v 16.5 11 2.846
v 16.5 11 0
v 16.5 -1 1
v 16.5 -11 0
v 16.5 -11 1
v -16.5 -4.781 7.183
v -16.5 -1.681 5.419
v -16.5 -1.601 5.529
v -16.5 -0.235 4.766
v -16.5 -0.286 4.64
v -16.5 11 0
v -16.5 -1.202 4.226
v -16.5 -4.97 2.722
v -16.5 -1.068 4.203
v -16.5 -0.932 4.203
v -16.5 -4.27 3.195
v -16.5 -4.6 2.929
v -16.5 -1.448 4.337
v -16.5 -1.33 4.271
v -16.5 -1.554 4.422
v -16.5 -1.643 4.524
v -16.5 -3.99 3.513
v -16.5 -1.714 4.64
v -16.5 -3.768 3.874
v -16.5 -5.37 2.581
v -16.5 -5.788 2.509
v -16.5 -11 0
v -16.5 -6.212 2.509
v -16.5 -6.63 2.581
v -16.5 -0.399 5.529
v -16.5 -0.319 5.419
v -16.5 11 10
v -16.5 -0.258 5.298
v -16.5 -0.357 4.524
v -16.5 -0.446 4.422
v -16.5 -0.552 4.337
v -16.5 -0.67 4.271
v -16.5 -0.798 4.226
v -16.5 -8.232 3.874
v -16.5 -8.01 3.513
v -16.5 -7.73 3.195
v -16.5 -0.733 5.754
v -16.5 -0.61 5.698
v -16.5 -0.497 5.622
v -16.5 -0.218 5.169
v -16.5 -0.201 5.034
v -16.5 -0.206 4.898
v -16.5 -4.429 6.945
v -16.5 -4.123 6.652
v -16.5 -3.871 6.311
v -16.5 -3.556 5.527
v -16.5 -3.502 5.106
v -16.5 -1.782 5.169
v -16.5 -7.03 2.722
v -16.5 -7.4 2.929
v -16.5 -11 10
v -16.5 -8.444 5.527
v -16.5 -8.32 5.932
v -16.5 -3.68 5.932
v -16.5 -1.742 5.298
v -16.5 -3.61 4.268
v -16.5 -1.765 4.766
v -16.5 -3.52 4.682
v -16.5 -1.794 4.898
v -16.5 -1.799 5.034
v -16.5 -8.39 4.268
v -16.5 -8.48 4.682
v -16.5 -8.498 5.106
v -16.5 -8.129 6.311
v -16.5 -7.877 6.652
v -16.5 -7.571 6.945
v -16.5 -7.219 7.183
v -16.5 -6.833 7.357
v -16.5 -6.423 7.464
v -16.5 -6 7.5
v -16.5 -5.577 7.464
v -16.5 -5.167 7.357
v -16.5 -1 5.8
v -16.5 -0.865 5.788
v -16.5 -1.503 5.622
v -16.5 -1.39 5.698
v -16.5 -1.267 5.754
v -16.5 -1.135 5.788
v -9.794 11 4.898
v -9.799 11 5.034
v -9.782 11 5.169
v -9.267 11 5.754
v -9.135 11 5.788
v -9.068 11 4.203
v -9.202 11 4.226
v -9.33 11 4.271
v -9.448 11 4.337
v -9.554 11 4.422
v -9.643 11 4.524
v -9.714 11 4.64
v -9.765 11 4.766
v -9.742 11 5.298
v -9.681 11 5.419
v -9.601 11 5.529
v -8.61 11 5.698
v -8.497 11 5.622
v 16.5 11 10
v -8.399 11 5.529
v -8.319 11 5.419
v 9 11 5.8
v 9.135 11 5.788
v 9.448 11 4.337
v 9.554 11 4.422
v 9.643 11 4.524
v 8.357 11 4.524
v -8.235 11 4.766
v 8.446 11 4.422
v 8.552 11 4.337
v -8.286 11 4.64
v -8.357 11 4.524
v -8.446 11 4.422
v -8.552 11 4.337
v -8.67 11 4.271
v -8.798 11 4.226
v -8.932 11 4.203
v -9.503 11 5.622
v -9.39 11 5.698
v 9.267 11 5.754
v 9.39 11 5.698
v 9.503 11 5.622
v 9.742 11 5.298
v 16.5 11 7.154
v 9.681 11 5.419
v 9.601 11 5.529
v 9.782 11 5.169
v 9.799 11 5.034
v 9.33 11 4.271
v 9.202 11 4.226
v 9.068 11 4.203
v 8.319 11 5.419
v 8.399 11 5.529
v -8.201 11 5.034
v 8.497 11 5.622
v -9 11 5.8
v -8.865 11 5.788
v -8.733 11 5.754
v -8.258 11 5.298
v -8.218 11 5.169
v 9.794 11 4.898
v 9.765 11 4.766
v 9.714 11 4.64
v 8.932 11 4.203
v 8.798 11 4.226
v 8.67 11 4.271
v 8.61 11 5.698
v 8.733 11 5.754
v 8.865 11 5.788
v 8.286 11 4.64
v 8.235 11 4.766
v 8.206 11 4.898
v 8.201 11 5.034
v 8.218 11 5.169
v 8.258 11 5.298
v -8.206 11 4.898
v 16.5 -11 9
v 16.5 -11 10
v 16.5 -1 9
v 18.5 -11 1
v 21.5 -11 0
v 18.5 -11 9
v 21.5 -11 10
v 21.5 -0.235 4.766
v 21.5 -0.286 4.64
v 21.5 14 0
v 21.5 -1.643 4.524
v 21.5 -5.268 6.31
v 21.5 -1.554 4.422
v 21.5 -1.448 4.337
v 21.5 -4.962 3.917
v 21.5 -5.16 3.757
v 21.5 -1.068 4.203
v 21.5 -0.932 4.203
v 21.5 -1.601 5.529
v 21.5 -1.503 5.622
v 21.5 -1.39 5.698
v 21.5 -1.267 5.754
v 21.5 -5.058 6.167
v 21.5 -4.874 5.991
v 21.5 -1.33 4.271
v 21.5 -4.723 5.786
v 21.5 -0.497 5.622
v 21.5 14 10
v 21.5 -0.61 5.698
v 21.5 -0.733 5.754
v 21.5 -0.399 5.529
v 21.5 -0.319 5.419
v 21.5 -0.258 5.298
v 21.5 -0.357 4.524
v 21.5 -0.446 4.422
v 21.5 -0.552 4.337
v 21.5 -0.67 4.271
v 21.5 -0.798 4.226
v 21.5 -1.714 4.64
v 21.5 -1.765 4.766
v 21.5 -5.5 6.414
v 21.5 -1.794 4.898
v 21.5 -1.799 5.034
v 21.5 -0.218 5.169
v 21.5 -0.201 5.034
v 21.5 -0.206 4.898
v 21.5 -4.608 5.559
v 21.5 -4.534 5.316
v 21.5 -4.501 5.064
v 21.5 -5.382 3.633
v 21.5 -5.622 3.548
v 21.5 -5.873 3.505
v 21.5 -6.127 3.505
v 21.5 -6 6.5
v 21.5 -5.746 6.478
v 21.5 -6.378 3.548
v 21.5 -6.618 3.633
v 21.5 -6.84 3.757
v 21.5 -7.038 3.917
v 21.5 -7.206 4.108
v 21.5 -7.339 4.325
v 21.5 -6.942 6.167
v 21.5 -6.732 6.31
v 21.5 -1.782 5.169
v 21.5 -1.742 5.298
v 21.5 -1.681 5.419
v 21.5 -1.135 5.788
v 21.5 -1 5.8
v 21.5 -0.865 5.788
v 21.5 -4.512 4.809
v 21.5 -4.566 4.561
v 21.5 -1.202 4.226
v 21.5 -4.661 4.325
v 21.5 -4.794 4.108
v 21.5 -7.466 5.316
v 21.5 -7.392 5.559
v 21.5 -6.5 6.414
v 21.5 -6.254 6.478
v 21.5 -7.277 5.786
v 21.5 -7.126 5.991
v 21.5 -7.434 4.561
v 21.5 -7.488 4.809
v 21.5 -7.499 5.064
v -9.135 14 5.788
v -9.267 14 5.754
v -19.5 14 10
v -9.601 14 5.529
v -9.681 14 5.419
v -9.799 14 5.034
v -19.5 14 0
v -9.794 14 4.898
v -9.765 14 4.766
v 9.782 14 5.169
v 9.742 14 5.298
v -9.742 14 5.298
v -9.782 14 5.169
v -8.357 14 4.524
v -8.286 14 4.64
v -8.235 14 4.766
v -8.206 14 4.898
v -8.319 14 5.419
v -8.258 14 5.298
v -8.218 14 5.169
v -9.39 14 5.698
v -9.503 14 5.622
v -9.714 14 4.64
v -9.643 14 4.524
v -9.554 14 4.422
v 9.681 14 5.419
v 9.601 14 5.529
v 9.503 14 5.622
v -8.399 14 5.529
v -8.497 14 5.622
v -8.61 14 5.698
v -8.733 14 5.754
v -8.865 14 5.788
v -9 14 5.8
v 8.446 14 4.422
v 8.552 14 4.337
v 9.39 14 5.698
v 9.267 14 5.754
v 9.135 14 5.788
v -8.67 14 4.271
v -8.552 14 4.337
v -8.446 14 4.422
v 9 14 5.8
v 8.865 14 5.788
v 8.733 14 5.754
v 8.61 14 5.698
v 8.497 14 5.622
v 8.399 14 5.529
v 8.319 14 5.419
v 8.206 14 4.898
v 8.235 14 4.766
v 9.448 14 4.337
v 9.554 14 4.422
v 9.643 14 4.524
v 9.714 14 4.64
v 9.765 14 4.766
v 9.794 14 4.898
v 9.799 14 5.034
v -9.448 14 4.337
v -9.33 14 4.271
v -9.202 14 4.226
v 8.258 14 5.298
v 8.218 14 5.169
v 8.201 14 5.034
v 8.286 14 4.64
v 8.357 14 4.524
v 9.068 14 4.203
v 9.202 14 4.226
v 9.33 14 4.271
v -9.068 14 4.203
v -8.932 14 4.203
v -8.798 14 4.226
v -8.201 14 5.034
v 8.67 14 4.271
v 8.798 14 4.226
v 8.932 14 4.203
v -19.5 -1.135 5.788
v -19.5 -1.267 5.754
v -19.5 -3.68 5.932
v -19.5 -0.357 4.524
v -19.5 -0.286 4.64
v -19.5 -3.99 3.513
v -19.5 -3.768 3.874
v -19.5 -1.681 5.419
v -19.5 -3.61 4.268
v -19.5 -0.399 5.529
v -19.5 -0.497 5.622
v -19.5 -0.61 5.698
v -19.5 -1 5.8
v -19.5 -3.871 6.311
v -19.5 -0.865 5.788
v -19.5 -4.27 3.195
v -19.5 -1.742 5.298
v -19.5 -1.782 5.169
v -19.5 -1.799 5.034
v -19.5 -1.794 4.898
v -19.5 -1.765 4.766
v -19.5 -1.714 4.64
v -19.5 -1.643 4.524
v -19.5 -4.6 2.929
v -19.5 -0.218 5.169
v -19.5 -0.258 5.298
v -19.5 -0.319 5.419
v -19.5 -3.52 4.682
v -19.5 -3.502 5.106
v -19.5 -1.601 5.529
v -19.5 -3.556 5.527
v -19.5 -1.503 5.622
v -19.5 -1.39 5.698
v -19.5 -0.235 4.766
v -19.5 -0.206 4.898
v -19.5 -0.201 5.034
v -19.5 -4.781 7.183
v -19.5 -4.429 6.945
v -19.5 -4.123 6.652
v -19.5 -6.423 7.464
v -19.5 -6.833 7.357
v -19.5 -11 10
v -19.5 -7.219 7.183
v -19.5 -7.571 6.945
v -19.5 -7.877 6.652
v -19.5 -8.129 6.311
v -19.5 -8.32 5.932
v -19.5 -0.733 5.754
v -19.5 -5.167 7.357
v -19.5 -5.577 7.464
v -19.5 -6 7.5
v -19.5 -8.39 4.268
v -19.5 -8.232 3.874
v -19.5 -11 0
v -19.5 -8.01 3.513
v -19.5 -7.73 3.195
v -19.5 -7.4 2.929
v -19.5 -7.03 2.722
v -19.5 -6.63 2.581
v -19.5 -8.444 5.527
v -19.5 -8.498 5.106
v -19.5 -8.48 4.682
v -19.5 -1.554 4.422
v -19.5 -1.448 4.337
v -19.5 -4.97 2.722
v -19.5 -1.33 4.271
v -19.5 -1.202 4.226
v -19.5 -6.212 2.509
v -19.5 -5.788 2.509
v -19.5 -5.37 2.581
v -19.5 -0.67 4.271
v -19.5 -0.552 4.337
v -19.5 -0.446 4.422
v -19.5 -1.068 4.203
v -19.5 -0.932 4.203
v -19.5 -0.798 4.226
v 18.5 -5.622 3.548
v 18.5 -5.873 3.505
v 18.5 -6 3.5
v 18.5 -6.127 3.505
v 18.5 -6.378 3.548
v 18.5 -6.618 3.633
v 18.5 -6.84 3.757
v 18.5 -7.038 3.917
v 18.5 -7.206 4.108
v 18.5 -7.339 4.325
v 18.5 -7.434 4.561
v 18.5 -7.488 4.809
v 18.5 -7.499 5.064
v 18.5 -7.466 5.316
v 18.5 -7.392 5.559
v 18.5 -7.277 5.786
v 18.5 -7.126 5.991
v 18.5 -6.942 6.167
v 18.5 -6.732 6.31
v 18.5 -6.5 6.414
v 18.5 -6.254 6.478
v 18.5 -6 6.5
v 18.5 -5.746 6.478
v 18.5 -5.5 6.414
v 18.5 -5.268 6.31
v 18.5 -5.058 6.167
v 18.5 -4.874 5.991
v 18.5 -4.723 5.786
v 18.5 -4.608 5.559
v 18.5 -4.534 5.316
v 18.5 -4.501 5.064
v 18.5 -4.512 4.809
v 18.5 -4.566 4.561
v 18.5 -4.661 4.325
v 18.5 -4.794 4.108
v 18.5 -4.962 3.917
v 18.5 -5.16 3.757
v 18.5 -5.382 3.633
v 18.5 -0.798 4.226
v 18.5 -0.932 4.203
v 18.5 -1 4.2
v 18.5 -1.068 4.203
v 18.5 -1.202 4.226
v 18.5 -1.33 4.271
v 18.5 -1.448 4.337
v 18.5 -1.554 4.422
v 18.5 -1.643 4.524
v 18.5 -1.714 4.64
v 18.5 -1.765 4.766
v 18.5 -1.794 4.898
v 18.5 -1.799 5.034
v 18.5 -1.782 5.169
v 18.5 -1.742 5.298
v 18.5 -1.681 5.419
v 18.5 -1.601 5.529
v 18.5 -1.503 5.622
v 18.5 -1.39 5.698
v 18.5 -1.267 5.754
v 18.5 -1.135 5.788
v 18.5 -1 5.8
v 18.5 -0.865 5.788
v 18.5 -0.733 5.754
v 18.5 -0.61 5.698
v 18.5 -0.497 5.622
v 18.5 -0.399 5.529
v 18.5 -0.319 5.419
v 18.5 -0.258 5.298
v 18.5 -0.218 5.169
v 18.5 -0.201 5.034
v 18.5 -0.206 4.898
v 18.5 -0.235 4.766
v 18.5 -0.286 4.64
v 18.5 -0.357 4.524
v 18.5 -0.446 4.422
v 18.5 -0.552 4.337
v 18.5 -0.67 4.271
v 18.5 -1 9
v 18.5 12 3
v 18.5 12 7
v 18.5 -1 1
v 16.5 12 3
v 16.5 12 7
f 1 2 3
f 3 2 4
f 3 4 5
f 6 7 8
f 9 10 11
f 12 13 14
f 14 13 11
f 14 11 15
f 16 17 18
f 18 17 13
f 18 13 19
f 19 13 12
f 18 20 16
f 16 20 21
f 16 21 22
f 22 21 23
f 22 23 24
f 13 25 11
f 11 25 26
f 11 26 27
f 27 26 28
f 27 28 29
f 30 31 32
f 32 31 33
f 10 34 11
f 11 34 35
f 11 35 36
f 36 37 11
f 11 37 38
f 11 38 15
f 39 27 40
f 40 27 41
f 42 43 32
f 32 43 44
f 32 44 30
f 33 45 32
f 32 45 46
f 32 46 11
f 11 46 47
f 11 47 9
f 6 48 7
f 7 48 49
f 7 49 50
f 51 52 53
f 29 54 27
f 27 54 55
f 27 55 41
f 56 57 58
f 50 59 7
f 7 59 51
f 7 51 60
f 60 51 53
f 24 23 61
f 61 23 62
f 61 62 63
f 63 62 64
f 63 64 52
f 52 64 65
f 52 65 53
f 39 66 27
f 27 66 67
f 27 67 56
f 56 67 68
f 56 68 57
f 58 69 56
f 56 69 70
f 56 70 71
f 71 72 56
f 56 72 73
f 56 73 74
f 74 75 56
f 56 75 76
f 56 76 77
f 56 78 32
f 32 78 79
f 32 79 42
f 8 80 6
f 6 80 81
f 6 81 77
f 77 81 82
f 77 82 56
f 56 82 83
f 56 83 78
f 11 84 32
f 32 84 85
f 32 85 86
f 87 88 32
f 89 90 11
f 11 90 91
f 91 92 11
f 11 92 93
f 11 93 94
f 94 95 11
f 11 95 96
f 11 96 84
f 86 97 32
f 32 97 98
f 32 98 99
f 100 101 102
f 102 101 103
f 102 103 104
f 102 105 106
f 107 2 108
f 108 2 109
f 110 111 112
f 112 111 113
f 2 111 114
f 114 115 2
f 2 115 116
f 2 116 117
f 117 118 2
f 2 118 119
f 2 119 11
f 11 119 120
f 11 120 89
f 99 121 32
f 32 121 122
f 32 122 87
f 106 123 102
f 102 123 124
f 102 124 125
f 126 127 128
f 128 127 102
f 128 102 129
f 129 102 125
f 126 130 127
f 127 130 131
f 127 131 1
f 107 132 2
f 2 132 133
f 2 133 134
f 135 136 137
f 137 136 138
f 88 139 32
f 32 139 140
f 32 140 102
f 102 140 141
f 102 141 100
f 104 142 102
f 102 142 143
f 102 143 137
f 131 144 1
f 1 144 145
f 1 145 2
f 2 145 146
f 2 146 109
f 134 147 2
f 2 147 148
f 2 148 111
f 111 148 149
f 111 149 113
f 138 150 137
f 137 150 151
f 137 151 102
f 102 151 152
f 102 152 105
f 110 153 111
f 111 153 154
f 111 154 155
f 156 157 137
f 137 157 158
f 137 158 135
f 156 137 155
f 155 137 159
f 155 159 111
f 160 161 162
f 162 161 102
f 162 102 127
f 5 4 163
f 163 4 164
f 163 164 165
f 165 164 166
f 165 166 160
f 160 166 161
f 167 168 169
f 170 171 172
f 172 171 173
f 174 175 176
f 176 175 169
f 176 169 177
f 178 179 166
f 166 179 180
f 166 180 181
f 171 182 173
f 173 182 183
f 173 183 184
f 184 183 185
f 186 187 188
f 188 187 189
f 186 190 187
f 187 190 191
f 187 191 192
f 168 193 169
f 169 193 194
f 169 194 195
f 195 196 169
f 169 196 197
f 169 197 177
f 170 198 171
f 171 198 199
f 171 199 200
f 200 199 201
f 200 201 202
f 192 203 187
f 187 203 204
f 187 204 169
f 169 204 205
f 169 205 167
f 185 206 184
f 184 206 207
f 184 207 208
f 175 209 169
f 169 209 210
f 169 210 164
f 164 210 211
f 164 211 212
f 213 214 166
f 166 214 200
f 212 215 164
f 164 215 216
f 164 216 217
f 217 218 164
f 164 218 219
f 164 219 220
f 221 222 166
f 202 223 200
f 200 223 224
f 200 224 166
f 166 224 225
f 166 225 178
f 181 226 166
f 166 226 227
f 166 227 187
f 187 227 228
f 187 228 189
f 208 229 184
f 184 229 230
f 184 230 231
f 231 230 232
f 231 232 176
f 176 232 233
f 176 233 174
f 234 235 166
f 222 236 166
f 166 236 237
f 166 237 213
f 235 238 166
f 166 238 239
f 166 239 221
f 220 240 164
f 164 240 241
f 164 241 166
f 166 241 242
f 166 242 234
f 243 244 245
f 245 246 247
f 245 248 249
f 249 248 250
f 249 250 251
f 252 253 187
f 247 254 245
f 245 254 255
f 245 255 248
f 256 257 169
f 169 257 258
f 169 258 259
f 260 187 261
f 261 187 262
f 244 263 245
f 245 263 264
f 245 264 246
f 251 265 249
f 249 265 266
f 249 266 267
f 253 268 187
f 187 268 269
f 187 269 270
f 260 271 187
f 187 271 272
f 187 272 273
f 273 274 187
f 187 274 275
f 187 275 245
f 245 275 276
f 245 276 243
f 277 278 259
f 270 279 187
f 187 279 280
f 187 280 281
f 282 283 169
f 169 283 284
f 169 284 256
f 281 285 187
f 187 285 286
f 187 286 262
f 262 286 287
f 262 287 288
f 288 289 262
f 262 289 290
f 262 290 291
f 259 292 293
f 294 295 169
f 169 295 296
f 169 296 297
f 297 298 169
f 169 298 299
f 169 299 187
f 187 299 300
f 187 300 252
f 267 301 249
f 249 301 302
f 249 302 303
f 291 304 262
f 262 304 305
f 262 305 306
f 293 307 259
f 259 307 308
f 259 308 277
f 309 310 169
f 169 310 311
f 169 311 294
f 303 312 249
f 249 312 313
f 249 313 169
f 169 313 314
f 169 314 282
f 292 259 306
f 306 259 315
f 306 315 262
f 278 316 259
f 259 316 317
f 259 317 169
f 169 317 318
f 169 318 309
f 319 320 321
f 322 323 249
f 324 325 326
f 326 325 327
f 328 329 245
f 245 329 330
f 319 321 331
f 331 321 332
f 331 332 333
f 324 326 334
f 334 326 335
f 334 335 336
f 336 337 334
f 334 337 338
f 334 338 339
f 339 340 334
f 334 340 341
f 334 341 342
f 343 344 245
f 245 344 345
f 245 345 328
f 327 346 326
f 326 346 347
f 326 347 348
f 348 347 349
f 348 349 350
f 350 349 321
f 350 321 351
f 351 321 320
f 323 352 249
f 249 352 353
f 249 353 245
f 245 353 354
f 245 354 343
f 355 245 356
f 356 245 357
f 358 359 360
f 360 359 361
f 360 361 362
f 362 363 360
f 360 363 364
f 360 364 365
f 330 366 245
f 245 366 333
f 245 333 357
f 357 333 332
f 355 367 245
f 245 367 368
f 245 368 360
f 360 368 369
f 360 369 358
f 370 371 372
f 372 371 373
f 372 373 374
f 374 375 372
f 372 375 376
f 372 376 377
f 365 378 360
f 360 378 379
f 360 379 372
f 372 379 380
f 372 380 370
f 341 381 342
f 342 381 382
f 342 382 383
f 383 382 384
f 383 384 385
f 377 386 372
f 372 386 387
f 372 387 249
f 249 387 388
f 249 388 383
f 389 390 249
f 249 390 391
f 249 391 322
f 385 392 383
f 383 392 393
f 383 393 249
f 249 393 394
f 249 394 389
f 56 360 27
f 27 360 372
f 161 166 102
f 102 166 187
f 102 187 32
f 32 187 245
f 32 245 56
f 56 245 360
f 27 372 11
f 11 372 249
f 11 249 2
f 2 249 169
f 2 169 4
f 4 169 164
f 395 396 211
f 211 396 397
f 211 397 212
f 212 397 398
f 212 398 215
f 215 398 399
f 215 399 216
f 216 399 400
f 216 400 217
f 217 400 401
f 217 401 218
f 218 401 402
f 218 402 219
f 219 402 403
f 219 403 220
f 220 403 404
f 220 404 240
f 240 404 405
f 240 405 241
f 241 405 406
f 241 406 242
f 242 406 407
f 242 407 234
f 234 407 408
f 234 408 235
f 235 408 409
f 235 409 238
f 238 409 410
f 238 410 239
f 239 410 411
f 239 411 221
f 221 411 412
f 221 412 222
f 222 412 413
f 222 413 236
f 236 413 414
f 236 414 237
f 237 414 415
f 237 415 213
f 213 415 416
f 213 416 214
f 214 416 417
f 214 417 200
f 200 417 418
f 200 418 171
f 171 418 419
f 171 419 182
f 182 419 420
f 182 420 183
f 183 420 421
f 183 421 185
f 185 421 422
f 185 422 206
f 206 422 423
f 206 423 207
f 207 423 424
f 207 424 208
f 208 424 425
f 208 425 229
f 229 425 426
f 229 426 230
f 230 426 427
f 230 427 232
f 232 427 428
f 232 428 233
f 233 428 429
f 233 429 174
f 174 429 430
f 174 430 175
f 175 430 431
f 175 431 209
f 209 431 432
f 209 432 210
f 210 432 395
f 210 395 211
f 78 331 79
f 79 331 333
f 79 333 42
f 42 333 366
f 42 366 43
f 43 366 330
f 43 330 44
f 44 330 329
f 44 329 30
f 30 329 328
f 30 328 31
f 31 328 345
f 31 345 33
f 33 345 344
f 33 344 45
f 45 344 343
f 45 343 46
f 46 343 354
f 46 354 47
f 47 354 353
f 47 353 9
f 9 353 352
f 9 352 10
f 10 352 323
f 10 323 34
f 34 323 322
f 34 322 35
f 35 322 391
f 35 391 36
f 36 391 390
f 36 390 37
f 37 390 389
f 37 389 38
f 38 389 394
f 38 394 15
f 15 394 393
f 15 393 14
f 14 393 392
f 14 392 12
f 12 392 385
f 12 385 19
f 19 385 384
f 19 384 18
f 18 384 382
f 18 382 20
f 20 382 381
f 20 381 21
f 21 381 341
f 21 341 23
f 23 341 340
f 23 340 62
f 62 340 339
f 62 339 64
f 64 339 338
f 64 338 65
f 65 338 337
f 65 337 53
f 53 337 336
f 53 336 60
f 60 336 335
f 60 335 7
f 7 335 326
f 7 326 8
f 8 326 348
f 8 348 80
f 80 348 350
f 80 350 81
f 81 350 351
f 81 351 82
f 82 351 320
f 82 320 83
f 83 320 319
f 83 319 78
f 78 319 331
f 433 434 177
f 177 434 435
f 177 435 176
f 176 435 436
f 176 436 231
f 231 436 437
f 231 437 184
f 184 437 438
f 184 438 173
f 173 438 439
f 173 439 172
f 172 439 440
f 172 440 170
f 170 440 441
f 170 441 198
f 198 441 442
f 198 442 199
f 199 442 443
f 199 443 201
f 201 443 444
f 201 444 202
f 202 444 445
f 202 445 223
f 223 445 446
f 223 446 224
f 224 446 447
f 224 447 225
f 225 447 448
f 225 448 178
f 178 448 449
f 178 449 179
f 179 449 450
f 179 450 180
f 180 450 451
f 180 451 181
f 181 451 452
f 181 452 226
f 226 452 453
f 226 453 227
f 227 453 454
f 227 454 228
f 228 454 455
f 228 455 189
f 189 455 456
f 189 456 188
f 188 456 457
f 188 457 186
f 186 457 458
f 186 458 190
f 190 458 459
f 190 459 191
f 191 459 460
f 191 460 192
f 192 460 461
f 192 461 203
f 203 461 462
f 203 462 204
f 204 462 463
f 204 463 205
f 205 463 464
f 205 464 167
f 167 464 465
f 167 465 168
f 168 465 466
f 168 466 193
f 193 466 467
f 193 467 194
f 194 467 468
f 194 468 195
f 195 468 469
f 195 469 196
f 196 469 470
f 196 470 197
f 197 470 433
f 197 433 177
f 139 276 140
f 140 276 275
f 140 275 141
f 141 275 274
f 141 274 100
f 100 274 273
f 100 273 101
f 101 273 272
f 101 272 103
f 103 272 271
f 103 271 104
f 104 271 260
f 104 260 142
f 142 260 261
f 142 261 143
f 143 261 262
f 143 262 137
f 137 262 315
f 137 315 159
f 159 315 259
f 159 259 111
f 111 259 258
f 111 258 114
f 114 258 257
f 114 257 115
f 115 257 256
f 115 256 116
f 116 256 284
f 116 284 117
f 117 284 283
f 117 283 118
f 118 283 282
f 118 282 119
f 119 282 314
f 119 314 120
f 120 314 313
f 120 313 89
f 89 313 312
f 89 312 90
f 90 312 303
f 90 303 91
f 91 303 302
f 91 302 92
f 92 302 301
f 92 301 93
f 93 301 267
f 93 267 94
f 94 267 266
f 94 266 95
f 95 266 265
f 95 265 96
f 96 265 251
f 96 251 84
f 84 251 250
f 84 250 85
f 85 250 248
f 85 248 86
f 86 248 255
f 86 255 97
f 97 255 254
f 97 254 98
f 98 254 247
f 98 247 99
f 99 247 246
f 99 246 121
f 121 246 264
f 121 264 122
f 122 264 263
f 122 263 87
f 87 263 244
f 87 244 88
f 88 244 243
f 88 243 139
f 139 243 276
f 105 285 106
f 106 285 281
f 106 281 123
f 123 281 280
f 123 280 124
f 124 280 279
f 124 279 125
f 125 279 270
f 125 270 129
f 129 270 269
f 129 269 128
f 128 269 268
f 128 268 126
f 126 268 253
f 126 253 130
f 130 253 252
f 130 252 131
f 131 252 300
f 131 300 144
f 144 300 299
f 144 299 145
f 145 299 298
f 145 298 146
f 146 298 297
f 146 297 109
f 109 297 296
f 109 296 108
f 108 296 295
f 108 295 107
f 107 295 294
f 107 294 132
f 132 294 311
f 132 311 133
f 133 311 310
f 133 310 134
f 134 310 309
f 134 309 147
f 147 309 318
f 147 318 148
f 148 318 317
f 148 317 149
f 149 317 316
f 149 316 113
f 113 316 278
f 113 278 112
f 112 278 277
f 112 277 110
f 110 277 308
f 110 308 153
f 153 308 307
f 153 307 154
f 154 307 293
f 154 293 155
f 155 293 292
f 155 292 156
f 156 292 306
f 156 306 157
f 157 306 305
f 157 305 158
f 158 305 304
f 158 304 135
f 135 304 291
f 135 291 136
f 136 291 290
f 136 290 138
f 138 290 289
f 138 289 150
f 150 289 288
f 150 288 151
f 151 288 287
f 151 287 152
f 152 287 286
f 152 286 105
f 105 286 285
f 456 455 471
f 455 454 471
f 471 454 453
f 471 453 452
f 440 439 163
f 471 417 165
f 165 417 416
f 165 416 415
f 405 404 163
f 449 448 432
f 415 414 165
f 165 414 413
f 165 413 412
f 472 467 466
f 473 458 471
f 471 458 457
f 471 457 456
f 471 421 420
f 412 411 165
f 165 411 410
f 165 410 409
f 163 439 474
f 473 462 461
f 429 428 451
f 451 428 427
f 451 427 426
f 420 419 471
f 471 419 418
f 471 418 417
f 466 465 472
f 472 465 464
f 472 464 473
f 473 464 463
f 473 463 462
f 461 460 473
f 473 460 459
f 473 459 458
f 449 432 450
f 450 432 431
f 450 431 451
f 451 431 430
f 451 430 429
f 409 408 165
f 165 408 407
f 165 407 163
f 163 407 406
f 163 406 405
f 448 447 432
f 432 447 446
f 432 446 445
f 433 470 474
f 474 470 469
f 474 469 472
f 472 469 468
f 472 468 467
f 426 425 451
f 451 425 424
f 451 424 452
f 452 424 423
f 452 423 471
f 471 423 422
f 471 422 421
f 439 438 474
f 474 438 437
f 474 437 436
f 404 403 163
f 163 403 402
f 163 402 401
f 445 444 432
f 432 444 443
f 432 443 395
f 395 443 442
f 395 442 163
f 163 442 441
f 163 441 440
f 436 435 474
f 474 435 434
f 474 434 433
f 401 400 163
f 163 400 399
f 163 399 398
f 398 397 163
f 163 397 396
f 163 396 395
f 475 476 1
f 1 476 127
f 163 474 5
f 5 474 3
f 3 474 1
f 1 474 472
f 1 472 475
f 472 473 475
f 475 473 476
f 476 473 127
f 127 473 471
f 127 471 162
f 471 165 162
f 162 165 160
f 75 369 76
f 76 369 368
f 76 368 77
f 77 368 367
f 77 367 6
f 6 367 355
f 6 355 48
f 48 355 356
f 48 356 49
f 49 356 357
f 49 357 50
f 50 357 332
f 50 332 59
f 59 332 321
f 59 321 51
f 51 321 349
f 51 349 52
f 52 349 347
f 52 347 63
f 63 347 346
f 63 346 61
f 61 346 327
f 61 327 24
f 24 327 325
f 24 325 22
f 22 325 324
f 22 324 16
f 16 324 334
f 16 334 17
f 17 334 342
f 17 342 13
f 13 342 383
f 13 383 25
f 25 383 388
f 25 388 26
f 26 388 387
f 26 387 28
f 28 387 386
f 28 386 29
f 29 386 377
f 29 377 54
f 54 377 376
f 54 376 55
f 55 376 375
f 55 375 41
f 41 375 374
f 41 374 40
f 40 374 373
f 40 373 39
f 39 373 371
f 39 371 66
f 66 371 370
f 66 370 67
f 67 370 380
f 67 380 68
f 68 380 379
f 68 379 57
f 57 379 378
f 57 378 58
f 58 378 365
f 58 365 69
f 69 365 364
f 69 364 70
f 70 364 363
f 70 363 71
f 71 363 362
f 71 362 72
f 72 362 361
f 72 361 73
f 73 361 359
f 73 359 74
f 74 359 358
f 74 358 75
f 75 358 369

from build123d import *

# Parameters (mm, degrees)
BOSS_EXTRUDE1_DEPTH = 10
SKETCH4_R           = 1.5
SKETCH4_R_2         = 0.8
CUT_EXTRUDE1_DEPTH  = 42
SKETCH6_R           = 0.8
CUT_EXTRUDE2_DEPTH  = 26
CUT_EXTRUDE3_DEPTH  = 2
SKETCH9_R           = 2.5
CUT_EXTRUDE4_DEPTH  = 10


with BuildPart() as part:
    # Sketch2 → Boss-Extrude1 (new body)
    with BuildSketch(Plane.XY):
        Polygon((-16.5, -11), (-19.5, -11), (-19.5, 14), (21.5, 14), (21.5, -11), (16.5, -11), (16.5, 11), (-16.5, 11), align=None)
    extrude(amount=BOSS_EXTRUDE1_DEPTH)

    # Sketch4 → Cut-Extrude1 (cut, through all)
    with BuildSketch(Plane.ZY.offset(19.5)):
        with Locations((5, -6)):
            Circle(SKETCH4_R)
        with Locations((5, -1)):
            Circle(SKETCH4_R_2)
    extrude(amount=-CUT_EXTRUDE1_DEPTH, mode=Mode.SUBTRACT)

    # Sketch6 → Cut-Extrude2 (cut, through all)
    with BuildSketch(Plane(origin=(0, 14, 0), x_dir=(1, 0, 0), z_dir=(0, 1, 0))):
        with Locations((-9, -5)):
            Circle(SKETCH6_R)
        with Locations((9, -5)):
            Circle(SKETCH6_R)
    extrude(amount=-CUT_EXTRUDE2_DEPTH, mode=Mode.SUBTRACT)

    # Sketch8 → Cut-Extrude3 (cut)
    with BuildSketch(Plane.ZY.offset(-16.5)):
        Polygon((1, -1), (1, -11), (9, -11), (9, -1), (7, 12), (3, 12), align=None)
    extrude(amount=-CUT_EXTRUDE3_DEPTH, mode=Mode.SUBTRACT)

    # Sketch9 → Cut-Extrude4 (cut)
    with BuildSketch(Plane.ZY.offset(19.5)):
        with Locations((5, -6)):
            Circle(SKETCH9_R)
    extrude(amount=-CUT_EXTRUDE4_DEPTH, mode=Mode.SUBTRACT)


solid = part.part
